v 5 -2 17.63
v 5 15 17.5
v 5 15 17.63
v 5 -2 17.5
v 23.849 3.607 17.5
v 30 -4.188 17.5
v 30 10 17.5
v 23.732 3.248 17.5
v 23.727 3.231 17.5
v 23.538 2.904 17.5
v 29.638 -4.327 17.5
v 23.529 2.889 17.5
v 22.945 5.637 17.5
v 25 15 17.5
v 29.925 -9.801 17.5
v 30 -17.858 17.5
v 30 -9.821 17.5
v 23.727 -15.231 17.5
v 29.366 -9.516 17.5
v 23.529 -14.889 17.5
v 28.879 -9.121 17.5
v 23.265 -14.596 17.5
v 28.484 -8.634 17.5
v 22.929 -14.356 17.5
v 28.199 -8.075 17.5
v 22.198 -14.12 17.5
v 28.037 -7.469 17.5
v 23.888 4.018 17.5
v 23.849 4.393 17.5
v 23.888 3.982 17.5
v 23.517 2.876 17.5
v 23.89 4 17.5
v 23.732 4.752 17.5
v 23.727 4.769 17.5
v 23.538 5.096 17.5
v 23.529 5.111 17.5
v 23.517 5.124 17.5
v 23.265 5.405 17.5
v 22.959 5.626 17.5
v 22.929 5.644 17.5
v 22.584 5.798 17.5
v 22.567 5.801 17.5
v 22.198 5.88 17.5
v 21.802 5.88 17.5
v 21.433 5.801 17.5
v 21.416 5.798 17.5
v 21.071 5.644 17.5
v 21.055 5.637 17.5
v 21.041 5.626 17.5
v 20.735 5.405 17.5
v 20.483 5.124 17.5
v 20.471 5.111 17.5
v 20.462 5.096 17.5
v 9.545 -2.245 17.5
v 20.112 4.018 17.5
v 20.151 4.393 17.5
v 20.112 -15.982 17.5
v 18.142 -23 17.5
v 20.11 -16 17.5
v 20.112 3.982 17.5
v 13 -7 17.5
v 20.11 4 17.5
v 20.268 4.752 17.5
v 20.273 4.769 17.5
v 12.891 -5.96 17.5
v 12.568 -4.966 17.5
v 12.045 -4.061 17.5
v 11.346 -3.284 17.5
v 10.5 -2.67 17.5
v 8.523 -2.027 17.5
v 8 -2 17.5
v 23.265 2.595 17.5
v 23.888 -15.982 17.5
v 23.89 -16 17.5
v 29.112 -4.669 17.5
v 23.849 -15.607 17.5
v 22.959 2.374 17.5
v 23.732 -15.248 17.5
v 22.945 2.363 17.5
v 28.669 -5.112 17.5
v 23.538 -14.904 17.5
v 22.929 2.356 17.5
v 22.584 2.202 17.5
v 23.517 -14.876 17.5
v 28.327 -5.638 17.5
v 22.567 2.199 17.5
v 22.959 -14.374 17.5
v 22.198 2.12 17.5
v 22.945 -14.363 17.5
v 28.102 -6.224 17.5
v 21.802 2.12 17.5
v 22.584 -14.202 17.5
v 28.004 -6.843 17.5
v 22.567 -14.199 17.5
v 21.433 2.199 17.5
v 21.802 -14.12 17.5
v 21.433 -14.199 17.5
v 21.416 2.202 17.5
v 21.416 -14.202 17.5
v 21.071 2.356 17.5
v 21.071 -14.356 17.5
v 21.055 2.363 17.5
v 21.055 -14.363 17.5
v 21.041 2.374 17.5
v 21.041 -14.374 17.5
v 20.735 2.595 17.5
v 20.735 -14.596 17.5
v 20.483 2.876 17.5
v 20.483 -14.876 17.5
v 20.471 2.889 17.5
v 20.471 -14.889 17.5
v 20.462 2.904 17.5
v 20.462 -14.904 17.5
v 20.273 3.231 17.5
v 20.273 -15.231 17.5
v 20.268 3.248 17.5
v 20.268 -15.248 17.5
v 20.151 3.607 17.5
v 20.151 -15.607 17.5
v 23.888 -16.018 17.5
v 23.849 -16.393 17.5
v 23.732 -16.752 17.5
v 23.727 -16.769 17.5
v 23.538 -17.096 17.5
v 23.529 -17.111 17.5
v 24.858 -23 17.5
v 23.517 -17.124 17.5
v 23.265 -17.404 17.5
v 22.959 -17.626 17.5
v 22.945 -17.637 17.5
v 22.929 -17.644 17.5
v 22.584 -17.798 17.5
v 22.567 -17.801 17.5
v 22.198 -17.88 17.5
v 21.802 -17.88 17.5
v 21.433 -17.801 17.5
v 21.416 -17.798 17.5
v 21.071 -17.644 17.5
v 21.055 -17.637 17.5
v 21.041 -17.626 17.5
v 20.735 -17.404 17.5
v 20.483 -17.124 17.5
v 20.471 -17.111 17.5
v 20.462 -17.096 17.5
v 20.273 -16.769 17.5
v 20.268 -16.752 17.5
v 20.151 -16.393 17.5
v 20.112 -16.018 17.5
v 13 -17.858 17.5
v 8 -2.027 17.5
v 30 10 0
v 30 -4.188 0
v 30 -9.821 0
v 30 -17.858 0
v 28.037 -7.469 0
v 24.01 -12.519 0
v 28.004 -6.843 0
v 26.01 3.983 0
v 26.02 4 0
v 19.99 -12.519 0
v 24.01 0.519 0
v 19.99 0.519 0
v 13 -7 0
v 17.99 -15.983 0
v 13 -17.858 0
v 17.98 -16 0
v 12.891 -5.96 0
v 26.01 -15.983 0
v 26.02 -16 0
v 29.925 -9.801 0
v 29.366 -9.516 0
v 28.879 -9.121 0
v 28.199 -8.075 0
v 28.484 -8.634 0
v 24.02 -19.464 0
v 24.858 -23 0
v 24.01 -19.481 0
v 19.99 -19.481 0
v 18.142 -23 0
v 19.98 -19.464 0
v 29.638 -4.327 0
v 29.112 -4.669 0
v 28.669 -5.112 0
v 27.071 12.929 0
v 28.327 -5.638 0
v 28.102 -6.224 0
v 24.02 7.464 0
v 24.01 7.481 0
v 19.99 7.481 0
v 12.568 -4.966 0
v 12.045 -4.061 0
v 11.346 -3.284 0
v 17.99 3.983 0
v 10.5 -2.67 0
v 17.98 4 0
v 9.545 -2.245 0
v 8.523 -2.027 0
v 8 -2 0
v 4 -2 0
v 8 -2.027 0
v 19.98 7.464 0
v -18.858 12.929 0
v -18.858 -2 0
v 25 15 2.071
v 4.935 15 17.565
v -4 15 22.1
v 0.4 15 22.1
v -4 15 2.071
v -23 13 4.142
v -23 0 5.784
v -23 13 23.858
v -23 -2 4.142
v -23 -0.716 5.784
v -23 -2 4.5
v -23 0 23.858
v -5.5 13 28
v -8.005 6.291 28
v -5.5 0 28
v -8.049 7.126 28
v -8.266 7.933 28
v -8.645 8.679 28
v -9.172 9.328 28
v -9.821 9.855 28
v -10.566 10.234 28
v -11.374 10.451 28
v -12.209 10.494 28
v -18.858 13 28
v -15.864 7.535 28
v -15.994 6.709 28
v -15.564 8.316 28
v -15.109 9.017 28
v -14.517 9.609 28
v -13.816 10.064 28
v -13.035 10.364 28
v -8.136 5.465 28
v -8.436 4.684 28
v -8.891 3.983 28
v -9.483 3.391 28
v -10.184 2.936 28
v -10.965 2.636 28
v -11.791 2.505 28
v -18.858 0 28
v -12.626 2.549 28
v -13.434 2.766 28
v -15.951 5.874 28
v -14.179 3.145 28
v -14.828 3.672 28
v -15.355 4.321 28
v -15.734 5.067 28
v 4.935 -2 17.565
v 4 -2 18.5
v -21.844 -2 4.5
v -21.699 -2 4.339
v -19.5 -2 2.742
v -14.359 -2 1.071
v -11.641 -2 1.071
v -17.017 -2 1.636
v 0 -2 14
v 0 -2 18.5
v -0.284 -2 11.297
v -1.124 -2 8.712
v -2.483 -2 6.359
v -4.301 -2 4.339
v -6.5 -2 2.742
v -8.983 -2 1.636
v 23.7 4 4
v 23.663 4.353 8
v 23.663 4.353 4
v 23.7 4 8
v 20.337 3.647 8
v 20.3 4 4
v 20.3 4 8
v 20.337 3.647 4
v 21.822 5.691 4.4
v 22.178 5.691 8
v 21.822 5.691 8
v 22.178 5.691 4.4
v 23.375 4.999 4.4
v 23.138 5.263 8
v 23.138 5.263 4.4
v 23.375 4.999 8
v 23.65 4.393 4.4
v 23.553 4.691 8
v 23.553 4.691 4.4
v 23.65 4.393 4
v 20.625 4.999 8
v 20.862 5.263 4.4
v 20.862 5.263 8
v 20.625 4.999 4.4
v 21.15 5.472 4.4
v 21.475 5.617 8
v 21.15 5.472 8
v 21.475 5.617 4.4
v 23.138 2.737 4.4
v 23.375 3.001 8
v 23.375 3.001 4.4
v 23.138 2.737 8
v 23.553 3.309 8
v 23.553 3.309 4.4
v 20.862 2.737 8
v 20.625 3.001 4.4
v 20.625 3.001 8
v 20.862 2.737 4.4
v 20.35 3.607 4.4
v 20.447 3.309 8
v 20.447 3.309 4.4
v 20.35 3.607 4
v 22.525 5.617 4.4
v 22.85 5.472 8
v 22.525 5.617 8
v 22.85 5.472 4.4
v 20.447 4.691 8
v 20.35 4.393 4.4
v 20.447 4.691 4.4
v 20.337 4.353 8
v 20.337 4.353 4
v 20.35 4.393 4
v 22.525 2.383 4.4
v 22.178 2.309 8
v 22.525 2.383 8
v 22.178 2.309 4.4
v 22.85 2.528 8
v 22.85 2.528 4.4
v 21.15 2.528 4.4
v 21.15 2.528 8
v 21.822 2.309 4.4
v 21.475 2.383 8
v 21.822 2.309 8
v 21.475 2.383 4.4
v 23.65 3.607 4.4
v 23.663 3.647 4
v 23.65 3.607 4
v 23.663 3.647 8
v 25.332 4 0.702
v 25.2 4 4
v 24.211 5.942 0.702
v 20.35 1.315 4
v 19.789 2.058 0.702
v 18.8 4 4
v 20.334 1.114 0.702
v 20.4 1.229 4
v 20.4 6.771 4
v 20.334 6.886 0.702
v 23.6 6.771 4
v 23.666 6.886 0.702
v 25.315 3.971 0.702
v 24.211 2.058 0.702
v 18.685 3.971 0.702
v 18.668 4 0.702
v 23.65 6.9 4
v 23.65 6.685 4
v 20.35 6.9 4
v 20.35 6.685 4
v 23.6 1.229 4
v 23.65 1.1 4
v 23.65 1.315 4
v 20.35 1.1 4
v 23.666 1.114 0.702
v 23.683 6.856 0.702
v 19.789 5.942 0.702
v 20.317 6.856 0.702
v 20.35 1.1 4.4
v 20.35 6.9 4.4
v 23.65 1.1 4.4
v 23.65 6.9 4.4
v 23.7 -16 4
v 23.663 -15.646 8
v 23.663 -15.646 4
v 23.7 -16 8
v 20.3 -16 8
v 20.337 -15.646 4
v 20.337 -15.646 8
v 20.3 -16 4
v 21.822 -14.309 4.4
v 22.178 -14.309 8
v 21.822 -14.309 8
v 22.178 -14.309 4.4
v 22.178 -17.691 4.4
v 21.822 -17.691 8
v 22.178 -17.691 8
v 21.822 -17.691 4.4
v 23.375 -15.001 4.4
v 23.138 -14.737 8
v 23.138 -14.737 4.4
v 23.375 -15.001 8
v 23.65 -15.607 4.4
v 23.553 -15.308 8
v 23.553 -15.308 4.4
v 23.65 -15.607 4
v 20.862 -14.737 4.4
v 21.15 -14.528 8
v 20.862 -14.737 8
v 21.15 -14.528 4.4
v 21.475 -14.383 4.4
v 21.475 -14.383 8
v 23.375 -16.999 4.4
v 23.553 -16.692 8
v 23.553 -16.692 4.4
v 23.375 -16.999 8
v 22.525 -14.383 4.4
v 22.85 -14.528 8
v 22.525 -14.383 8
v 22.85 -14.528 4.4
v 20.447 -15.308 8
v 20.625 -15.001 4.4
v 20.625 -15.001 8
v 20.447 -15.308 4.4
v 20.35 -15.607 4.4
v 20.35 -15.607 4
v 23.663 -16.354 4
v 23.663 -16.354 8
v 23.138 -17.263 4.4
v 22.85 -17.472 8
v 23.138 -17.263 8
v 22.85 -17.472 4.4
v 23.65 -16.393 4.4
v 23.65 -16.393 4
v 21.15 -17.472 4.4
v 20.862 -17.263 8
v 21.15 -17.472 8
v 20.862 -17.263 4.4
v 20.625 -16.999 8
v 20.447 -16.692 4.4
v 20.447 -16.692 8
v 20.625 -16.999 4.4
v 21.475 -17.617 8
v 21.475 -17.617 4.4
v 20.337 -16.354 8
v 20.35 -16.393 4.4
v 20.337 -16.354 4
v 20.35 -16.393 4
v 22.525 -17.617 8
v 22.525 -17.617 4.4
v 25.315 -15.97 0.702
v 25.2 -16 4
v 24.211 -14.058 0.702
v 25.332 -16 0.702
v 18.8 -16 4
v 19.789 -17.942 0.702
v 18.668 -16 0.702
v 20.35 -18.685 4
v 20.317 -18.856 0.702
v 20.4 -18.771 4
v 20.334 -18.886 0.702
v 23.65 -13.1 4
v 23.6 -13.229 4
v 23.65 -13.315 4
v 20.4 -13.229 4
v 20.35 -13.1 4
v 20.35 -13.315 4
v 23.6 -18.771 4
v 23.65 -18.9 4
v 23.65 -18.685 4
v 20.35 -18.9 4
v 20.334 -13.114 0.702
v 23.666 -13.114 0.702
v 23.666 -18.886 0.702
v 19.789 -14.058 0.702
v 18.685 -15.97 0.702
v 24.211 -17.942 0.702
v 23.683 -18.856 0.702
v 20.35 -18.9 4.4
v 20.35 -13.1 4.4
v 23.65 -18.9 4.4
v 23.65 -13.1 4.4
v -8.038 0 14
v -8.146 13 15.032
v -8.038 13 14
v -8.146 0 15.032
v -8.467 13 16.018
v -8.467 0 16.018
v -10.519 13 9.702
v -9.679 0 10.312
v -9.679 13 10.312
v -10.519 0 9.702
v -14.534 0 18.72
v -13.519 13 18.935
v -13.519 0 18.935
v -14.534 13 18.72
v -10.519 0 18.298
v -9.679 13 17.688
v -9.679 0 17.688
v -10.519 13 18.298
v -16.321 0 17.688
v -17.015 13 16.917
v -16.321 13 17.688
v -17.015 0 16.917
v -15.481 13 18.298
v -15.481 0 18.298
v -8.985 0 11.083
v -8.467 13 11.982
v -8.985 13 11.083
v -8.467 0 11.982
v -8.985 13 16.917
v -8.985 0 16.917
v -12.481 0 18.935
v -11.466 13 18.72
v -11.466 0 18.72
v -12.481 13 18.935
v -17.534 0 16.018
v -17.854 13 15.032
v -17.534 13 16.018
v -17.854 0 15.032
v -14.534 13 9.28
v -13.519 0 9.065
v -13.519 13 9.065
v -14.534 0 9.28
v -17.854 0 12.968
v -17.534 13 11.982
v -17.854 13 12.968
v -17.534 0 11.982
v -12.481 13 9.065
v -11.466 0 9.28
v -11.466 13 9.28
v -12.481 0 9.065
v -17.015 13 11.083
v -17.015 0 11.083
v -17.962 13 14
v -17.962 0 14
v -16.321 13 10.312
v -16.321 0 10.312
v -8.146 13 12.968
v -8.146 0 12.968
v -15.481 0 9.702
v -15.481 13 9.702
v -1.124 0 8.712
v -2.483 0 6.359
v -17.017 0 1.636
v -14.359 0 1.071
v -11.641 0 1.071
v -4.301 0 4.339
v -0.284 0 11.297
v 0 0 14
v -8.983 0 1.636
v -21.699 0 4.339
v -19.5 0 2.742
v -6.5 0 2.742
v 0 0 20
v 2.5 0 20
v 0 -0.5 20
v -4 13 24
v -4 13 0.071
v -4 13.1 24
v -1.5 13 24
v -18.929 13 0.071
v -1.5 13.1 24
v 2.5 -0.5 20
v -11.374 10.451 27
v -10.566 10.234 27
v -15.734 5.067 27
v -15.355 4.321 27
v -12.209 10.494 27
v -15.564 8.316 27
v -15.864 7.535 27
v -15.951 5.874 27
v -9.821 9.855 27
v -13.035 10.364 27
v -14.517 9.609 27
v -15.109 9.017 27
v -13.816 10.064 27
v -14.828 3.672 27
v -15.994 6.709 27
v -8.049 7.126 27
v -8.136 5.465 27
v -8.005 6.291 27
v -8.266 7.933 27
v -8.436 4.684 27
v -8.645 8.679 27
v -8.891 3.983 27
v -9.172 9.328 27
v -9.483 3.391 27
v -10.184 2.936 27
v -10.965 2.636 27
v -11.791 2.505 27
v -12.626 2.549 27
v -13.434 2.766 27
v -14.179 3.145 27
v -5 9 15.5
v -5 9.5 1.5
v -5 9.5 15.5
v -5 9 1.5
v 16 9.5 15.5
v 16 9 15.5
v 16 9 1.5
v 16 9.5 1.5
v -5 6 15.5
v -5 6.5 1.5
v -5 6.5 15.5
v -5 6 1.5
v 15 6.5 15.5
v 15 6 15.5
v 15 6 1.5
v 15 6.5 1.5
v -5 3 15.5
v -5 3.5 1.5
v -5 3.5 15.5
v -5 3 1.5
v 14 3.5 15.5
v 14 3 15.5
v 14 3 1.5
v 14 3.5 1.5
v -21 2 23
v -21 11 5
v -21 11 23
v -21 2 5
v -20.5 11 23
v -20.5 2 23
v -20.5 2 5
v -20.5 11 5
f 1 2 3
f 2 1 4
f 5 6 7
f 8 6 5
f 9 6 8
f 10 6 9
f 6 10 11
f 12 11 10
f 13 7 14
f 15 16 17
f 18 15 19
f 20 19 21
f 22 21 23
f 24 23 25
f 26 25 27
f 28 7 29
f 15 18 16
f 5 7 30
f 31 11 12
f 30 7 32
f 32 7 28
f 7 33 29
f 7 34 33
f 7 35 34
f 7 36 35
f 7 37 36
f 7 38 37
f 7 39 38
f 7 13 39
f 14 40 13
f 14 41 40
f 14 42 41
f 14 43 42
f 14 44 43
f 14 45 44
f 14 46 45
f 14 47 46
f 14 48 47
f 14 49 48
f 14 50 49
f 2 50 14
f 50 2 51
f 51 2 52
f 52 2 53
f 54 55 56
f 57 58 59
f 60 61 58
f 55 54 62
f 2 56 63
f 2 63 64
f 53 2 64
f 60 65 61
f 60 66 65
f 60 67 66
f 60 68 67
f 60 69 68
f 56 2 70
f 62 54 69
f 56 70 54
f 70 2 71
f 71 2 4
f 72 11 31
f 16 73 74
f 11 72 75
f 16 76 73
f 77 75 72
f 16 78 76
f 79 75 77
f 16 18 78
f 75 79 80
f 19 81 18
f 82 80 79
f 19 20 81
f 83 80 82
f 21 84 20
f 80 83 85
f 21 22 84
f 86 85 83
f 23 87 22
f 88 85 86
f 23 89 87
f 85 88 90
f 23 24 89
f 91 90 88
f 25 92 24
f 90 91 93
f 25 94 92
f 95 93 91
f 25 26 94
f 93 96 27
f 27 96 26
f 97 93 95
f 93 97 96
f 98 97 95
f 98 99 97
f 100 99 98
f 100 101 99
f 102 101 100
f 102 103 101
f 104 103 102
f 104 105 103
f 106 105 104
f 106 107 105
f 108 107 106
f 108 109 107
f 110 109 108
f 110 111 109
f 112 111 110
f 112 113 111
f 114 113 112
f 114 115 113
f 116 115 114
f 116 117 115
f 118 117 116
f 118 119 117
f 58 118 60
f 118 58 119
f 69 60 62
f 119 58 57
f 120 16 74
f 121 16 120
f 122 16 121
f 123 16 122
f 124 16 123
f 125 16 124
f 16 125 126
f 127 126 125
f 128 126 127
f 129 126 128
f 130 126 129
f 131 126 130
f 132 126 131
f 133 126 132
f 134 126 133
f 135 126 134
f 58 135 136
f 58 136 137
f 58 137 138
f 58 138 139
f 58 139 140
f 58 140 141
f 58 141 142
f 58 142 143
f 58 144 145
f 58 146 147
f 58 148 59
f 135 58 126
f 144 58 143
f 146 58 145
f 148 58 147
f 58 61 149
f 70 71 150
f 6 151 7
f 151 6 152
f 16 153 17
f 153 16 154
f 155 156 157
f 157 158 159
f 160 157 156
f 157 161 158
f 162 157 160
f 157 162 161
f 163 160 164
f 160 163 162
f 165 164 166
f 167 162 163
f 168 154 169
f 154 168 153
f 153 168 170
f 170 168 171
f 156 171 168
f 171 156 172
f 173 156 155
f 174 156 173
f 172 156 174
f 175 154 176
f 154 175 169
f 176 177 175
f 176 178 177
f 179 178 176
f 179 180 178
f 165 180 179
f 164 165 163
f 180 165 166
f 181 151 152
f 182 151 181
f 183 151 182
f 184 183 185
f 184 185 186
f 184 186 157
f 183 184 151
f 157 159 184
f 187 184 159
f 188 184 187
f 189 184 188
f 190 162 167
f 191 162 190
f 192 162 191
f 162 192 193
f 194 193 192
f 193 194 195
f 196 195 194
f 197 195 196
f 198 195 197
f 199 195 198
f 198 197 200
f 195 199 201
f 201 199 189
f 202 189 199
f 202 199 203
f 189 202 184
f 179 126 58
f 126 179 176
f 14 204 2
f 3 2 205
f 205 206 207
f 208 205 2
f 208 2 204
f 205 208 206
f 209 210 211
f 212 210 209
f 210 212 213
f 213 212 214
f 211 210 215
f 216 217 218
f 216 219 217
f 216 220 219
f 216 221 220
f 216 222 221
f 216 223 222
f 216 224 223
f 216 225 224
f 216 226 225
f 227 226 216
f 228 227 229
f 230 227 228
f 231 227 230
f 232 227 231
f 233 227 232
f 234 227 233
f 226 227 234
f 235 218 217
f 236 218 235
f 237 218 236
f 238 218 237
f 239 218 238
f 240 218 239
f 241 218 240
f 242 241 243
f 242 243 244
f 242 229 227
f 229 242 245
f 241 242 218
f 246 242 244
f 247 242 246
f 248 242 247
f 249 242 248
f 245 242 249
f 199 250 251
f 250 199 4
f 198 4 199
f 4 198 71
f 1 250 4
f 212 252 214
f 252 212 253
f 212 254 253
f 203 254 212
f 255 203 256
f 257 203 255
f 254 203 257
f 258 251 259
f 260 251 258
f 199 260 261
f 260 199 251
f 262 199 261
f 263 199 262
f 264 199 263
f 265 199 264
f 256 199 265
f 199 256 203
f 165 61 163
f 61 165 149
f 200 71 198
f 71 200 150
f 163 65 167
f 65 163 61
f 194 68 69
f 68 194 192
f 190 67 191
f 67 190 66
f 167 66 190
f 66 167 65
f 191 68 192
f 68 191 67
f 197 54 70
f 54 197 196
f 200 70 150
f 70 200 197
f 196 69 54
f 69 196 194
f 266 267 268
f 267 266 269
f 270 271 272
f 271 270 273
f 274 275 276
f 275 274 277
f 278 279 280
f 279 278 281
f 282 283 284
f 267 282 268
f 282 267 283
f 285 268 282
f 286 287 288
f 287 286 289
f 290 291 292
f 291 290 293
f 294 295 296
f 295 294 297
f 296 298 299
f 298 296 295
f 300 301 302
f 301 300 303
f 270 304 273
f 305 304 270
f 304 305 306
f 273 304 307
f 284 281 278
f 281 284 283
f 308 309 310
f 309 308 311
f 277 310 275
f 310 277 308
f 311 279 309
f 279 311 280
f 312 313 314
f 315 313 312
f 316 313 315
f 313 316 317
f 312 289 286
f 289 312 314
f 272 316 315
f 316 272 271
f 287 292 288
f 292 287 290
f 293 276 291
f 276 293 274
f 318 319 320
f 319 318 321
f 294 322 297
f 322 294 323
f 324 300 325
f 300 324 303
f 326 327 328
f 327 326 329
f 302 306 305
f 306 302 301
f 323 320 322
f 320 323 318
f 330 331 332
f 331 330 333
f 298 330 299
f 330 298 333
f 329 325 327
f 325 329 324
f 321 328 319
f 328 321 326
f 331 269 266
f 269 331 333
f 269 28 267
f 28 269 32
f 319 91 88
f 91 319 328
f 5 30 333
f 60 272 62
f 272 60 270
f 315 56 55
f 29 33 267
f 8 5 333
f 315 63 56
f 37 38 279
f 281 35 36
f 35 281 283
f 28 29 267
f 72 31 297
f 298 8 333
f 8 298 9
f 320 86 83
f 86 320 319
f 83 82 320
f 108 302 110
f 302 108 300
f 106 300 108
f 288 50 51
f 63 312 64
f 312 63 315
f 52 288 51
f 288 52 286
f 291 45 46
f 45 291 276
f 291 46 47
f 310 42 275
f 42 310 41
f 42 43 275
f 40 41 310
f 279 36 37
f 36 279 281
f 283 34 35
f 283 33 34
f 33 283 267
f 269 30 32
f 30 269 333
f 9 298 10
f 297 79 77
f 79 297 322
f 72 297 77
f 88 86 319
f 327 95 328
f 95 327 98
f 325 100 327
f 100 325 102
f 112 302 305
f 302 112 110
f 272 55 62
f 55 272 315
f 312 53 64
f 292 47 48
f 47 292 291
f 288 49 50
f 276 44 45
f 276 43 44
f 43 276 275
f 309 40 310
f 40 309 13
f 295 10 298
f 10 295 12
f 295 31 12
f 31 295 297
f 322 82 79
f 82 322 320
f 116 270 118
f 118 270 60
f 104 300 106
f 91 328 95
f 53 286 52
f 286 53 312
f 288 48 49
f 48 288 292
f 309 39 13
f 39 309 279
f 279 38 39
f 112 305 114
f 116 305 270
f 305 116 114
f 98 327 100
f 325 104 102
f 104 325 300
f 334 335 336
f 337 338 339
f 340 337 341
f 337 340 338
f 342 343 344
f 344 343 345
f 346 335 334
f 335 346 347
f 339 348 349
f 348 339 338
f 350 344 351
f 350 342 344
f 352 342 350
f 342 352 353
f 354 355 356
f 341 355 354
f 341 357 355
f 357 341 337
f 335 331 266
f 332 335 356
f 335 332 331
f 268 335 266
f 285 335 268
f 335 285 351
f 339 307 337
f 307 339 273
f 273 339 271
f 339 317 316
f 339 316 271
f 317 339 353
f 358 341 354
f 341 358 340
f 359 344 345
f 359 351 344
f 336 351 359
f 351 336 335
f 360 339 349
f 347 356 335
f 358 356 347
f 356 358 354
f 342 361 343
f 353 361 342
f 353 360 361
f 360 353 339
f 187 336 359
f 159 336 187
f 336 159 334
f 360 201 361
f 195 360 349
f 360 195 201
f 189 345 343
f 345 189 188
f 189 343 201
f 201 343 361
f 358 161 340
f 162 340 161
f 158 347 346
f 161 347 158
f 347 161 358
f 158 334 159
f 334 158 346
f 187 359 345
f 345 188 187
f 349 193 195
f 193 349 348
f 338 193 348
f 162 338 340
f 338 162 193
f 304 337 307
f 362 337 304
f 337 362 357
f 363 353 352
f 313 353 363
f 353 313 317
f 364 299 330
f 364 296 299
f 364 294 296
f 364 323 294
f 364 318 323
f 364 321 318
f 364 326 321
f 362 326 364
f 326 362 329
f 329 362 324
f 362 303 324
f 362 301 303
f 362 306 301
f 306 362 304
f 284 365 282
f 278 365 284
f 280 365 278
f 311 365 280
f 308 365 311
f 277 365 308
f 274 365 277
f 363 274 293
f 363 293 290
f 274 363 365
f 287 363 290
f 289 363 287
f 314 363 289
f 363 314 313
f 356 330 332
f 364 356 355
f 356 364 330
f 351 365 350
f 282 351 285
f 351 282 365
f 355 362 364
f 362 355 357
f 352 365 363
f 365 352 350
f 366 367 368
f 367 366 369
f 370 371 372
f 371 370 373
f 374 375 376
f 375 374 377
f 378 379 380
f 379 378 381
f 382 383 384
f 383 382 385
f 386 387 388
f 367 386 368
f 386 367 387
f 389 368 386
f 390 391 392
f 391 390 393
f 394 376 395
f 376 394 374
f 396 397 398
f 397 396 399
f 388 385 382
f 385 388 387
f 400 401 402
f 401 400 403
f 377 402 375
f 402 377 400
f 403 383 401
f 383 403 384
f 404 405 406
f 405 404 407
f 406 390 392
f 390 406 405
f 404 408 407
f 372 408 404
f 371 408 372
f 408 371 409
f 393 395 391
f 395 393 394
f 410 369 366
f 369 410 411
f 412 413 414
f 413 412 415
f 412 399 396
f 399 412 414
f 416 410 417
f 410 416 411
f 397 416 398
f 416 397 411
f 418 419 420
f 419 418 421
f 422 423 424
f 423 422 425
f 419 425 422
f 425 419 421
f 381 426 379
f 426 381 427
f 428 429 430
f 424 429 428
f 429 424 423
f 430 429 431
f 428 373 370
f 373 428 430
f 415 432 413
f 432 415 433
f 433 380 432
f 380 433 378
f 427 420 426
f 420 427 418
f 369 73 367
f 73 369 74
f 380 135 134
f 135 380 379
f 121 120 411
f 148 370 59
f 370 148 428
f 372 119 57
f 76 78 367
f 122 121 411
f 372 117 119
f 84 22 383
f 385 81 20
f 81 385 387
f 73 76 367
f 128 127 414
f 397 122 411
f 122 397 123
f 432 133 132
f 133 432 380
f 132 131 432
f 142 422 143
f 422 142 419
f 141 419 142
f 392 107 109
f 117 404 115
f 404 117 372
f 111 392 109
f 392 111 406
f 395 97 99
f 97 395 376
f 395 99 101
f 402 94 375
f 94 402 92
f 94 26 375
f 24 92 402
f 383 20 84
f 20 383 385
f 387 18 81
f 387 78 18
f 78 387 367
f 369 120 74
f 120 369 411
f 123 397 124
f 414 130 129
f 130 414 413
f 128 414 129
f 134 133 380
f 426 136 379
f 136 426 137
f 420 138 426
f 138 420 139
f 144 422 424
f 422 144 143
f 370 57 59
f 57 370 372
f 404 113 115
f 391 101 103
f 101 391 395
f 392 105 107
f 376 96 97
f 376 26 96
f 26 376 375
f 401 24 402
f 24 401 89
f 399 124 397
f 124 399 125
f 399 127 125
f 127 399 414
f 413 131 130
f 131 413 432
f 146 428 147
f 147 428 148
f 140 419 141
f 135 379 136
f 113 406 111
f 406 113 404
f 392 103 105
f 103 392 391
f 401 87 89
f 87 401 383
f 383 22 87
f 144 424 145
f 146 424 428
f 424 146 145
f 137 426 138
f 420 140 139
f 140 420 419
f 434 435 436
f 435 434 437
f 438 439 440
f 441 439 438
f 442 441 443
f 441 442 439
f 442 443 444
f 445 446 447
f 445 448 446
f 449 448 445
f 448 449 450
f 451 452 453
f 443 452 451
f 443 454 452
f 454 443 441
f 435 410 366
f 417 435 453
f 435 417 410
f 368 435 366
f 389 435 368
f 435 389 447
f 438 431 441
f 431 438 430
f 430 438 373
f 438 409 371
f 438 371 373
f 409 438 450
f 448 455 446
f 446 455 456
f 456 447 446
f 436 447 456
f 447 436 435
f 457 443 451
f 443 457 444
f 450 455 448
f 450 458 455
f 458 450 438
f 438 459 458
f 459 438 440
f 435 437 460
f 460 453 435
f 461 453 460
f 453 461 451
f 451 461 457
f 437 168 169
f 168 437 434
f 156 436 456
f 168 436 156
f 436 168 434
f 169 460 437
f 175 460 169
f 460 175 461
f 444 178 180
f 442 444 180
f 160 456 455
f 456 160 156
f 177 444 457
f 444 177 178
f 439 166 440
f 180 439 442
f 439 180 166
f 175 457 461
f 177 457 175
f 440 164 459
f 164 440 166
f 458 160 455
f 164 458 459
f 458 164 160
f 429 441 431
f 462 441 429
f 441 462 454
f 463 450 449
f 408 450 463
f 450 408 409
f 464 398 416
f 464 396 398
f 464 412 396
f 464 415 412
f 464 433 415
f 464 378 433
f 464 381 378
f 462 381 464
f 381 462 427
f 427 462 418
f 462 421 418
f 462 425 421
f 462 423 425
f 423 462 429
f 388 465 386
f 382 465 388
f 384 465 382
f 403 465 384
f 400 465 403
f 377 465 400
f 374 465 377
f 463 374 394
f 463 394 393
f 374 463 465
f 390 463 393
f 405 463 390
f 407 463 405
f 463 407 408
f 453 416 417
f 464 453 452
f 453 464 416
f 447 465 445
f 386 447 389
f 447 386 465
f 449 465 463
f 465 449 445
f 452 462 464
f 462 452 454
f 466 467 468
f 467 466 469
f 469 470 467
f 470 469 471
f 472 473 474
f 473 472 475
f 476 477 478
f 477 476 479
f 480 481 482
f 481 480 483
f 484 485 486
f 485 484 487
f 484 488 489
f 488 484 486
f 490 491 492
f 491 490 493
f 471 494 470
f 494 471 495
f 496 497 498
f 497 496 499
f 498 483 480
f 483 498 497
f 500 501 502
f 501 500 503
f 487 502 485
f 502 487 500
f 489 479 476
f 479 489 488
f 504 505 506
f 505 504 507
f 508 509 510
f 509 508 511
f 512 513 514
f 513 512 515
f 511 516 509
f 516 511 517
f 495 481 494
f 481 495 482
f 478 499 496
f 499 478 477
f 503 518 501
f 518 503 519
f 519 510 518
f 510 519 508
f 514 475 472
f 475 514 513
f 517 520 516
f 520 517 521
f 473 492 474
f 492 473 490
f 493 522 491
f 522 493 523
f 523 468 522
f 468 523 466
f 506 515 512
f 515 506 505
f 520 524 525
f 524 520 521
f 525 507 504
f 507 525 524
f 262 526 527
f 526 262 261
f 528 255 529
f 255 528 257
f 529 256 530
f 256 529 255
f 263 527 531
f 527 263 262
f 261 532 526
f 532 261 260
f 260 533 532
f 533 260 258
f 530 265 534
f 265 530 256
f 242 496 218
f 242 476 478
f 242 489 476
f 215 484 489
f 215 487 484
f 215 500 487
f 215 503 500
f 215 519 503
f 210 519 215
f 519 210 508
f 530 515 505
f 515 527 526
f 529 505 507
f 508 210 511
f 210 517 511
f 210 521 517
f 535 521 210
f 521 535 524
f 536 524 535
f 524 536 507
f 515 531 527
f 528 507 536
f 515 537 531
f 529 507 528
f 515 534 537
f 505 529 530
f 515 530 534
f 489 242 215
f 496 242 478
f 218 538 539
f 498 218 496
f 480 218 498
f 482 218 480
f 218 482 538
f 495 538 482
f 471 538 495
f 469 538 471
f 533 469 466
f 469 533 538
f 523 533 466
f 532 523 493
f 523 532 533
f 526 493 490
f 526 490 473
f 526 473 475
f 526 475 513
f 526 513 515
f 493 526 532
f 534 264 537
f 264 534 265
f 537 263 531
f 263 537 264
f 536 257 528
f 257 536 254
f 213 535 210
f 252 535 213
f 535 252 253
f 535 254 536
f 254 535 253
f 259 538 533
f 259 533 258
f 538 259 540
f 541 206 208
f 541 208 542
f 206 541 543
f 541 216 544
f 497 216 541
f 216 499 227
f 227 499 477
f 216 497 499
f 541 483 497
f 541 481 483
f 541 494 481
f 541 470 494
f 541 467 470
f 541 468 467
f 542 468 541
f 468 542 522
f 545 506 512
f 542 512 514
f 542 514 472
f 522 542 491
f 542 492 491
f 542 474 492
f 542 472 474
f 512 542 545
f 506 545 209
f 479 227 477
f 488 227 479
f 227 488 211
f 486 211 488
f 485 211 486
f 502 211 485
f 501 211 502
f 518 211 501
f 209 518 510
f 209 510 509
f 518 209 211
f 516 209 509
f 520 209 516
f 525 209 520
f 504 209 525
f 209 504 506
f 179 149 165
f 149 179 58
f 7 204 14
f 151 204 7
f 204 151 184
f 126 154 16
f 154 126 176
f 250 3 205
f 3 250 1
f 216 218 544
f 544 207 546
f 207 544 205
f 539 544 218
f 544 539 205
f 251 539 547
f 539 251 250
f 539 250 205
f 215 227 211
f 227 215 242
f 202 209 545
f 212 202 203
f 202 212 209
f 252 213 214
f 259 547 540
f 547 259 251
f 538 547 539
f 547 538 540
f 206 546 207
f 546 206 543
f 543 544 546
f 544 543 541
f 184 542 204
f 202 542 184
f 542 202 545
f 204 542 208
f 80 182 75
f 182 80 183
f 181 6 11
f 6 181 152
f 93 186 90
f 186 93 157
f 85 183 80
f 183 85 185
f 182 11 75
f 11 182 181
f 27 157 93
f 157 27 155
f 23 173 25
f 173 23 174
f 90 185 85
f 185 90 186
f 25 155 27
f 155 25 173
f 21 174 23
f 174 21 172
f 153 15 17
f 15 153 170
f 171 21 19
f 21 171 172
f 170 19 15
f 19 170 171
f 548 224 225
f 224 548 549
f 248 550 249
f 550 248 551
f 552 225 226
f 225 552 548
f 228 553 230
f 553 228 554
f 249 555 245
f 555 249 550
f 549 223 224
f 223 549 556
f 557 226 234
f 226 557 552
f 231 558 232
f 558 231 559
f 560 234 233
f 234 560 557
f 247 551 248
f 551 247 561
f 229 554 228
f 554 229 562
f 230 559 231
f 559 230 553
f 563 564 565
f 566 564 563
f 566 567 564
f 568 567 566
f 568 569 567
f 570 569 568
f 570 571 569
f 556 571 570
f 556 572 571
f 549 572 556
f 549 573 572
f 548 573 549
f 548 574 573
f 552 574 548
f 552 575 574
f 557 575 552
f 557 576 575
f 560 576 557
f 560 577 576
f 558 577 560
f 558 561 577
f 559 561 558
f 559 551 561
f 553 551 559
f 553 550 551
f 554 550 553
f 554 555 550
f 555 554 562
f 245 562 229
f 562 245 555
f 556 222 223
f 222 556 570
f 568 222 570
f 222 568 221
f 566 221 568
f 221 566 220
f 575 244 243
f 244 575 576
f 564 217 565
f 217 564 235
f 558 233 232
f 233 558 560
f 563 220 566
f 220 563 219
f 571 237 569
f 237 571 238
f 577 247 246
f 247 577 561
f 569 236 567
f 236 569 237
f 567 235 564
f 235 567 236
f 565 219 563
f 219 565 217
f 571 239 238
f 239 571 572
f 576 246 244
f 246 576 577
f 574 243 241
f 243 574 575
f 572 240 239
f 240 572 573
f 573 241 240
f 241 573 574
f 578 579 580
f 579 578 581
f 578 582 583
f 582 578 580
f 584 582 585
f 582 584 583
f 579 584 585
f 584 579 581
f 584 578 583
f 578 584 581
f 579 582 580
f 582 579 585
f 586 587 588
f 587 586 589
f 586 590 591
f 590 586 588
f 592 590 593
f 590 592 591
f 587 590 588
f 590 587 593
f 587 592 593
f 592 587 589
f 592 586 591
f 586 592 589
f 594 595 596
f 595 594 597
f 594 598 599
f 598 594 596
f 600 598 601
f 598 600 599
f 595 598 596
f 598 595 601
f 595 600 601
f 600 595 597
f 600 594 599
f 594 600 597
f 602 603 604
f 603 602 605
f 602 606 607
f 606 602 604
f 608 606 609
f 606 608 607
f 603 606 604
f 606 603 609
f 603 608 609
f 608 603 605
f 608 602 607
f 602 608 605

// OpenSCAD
// PRUSA iteration3
// PSU-Y reinforcement part 
// GNU GPL v3
// Josef Průša <iam@josefprusa.cz> and contributors
// http://www.reprap.org/wiki/Prusa_Mendel
// http://prusamendel.org

module base()
{
union(){
    difference(){
        union(){
        translate([ 5, -23, 0 ]) cube([ 25, 38, 17.5 ]);  // horizontal plate
        translate([ -23, -2, 0 ]) cube([ 28, 17, 28 ]);  // Y_Corner block    
        }
        translate( [ 4 , -25 , -1 ] ) cube( [ 9 , 23 , 20 ] );  //  holder side cut
    }
    difference(){    
        translate([ 8, -7, 0 ]) cube([ 5, 5, 17.5 ]);  // fillet block
        translate([ 8, -7, -1 ]) cylinder( h = 28, r = 5, $fn=30);  // fillet cut
        }
    }
}


module cutout()
    {

    translate([ 22, 4 , -2 ]) cylinder( h = 20, r = 1.7, $fn=30);  // M3 hole A
    translate([ 22, 4 , 8 ]) cylinder( h = 10, r1 = 1.7, r2=1.9,$fn=30);  // M3 hole A
    translate([ 22, 4 , -1 ]) cylinder( h = 5, r1 = 3.4, r2=3.2,$fn=6);  // M3 nut body A        
    translate([ 22, 4 , -1 ]) cylinder( h = 5, r2 = 0.1, r1 = 5, $fn=6);  // M3 nut hole fillet A
    #translate([ 22, 4 , 4.2 ]) cube([ 3.3 , 5.8 , 0.4 ], center = true ); // bridge force A
        
    translate([ 22, -16 , -2 ]) cylinder( h = 20, r = 1.7, $fn=30);  // M3 hole B
    translate([ 22, -16 , 8 ]) cylinder( h = 10, r1 = 1.7, r2=1.9, $fn=30);  // M3 hole B
    translate([ 22, -16 , -1 ]) cylinder( h = 5, r1 = 3.4, r2=3.2, $fn=6);  // M3 nut body B
    translate([ 22, -16 , -1 ]) cylinder( h = 5, r2 = 0.1, r1 = 5, $fn=6);  // M3 nut hole B fillet
    #translate([ 22, -16 , 4.2 ]) cube([ 3.3 , 5.8 , 0.4 ], center = true ); // bridge force B

    translate([ -13, 14 , 14 ]) rotate([90,0,0]) cylinder( h = 25, r = 4.9625, $fn=30);  // threaded rod
    
    translate([ -13, 0 , 14 ]) rotate([90,0,0]) cylinder( h = 4, r = 13, $fn=30);  // washer
    translate([ -29, -7 , 14 ])  cube([ 29, 7, 18 ]);  // washer upper cut
    
    translate([ -24, 13 , -1 ]) cube([ 20, 15, 30 ]);  // Y_Corner cutaway

    //vertical corners 45 degree cut
    translate( [ 12, -31 , -2 ] ) rotate( [0,0,45] ) cube([ 10 , 10 , 21 ]);  
    translate([ 31,  9, -2 ])  rotate( [0,0,45] ) cube([ 10, 10, 21 ]);  
    translate([ 31, -31, -2 ]) rotate( [0,0,45] ) cube([ 10, 10, 21 ]);  

    // horizontal corners 45 degree cut
    translate([ -8.5, -8, 31 ]) rotate( [0,45,0] ) cube([ 19, 40, 20 ]);  
    translate([ -31, -6, 30 ]) rotate( [0,45,0])  cube([ 10, 35, 10 ]);  
    translate([ -31, -6, -2 ]) rotate( [0,45,0] ) cube([ 10, 35, 10 ]);  
    translate([ -26, -4,  2.5 ]) rotate( [45,0,0] ) cube([ 5, 5, 5 ]);  
    translate([ -1, -4, 16.5 ]) rotate( [45,0,0] ) cube([ 5, 5, 5 ]);  
    translate([ -1, -5, 20 ]) cube([ 5, 5, 5 ]);  
    translate([ -5, 16.6, 20.5 ]) rotate( [45,0,0] ) cube([ 6, 5, 5 ]);  
    translate([ -5, 13, 24 ]) cube([ 6, 5, 5 ]);  
    translate([ -30, 15, -5 ]) rotate( [45,0,0] ) cube([ 70, 5, 5 ]);  
    
    translate([ 31, -7, -1 ]) rotate([0,0,45]) cylinder( h = 25, r = 3, $fn=30);  
    translate([ -12, 6.5, 27 ]) rotate([0,0,45]) cylinder( h = 25, r = 4, $fn=30);  
    
    translate([ -5, 9, 1.5 ]) cube([ 21, 0.5, 14 ]);  
    translate([ -5, 6, 1.5 ]) cube([ 20, 0.5, 14 ]);  
    translate([ -5, 3, 1.5 ]) cube([ 19, 0.5, 14 ]);  
    translate([ -21, 2, 5 ]) cube([ 0.5, 9, 18 ]);  
    }

module final_part(){
difference()
{
    base();
    cutout();
    }
}

final_part();
    
